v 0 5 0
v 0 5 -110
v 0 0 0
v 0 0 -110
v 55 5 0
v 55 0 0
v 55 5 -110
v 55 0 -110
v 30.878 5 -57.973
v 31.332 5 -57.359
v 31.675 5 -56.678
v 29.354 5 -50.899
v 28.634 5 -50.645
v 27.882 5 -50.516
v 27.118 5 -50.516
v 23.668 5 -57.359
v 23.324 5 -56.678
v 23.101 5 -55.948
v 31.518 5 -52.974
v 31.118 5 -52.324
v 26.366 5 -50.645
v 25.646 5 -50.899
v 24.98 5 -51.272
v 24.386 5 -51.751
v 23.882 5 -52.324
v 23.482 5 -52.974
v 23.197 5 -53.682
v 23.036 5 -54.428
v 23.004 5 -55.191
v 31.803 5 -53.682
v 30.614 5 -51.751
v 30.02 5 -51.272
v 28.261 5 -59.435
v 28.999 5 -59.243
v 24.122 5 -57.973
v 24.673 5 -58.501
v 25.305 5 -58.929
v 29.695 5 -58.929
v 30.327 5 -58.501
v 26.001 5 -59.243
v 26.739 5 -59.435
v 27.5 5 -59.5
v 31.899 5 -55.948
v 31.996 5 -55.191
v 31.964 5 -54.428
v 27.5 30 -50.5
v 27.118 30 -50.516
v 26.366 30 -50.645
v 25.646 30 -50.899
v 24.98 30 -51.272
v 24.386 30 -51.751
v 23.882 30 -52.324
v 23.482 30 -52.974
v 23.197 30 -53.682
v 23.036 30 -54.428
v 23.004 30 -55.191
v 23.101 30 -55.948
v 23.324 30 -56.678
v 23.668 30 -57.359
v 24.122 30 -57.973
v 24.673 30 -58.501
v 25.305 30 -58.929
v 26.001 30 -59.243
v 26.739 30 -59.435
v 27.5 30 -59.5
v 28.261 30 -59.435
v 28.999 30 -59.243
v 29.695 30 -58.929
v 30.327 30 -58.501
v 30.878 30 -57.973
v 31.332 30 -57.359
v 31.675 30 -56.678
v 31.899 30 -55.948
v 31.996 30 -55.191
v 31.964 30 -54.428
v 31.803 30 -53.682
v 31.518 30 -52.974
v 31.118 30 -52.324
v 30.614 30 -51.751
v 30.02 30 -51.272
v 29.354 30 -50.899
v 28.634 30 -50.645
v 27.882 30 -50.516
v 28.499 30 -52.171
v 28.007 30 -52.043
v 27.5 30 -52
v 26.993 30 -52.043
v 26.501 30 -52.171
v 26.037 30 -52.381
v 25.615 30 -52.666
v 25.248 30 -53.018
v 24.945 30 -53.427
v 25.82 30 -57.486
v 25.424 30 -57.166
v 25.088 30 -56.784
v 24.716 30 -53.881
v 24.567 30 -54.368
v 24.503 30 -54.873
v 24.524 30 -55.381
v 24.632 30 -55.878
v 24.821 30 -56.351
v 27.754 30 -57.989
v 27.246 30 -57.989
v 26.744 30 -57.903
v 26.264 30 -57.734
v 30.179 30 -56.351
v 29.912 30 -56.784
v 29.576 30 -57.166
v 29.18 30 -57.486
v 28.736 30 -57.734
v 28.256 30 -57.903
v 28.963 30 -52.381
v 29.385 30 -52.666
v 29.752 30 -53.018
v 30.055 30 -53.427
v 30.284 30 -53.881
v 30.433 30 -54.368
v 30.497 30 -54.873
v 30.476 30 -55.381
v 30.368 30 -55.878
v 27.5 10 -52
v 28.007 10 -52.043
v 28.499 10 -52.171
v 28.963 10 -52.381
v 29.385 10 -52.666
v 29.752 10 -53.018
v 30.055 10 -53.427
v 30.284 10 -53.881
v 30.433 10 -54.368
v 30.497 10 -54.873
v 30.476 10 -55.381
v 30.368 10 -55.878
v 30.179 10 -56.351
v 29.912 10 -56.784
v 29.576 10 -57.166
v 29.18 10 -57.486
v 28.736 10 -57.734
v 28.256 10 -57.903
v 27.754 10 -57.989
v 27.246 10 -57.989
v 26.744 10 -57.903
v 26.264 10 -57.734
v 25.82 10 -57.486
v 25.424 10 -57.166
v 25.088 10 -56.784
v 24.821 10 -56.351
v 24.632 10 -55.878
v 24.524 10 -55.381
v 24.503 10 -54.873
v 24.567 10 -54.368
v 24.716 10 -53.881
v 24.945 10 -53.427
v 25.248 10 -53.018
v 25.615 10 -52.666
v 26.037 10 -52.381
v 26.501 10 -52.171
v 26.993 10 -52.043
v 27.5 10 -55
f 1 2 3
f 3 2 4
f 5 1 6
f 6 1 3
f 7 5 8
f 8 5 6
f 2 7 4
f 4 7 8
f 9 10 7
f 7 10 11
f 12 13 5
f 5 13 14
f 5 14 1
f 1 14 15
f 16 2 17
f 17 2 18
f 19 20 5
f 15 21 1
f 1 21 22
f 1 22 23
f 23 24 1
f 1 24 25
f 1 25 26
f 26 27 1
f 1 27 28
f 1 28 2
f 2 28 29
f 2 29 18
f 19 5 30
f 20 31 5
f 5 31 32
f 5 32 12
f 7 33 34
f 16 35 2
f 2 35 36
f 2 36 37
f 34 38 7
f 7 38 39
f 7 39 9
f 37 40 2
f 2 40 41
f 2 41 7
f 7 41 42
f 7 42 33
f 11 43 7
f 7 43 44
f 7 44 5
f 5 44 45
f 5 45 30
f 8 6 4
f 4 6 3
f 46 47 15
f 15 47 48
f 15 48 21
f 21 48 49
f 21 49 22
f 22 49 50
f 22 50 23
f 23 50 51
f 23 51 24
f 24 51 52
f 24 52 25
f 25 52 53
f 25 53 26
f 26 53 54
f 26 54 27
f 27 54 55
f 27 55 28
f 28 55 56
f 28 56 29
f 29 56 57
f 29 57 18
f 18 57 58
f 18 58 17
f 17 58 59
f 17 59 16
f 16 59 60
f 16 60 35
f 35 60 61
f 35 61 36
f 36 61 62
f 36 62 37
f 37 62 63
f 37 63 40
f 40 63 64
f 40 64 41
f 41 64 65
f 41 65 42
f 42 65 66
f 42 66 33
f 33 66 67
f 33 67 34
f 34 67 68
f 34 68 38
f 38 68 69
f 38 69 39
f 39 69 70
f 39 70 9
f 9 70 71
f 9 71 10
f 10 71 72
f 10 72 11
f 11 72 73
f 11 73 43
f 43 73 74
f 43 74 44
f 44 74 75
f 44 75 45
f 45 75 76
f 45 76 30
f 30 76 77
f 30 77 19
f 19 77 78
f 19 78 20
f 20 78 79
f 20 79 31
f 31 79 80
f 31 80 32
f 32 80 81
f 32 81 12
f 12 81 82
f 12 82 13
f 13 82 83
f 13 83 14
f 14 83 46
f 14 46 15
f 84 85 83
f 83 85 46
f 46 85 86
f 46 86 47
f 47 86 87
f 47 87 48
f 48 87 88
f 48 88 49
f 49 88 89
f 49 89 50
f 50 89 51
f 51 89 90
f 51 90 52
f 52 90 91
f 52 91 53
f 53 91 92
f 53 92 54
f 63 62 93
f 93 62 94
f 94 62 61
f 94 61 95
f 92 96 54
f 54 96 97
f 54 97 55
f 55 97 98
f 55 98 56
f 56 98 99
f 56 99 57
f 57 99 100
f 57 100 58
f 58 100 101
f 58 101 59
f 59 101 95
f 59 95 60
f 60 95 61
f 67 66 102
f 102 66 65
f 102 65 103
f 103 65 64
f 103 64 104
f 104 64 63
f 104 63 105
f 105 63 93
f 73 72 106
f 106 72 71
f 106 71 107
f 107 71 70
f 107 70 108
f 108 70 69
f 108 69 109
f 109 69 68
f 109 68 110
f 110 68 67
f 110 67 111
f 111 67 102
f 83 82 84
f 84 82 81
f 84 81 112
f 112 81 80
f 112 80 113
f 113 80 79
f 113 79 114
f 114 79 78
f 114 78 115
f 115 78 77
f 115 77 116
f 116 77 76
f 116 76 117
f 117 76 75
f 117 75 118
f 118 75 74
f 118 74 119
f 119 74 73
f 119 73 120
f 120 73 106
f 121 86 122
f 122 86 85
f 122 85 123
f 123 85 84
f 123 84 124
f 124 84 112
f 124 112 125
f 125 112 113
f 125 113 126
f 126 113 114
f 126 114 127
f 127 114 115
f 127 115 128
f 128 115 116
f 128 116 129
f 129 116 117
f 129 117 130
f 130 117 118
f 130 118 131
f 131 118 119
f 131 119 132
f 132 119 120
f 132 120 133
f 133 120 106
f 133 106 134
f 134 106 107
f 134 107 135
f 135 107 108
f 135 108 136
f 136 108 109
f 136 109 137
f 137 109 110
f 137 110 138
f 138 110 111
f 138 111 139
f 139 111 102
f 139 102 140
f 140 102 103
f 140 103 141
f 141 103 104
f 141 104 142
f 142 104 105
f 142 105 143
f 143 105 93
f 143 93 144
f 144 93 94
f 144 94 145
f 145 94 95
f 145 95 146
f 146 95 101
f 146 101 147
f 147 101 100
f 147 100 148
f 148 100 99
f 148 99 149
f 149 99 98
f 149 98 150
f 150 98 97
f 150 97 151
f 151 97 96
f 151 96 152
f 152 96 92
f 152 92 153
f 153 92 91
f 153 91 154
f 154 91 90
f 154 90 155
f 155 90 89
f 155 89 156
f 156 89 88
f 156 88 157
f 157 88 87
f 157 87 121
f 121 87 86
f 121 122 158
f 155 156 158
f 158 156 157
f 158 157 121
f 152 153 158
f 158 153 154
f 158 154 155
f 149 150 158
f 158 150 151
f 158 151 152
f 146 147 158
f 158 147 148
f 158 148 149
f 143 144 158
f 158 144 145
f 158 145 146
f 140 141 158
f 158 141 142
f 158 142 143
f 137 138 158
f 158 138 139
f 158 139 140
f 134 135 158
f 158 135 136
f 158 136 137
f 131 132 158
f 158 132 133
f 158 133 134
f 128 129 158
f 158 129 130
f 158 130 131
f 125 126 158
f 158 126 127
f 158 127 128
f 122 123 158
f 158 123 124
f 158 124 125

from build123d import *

# Parameters (mm, degrees)
SKETCH1_W           = 55
SKETCH1_H           = 110
BOSS_EXTRUDE3_DEPTH = 5
SKETCH3_R           = 4.5
BOSS_EXTRUDE4_DEPTH = 25
SKETCH4_R           = 3
CUT_EXTRUDE1_DEPTH  = 20


with BuildPart() as part:
    # Sketch1 → Boss-Extrude3 (new body)
    with BuildSketch(Plane(origin=(0, 0, 0), x_dir=(1, 0, 0), z_dir=(0, 1, 0))):
        with Locations((27.5, 55)):
            Rectangle(SKETCH1_W, SKETCH1_H)
    extrude(amount=BOSS_EXTRUDE3_DEPTH)

    # Sketch3 → Boss-Extrude4 (add)
    with BuildSketch(Plane(origin=(0, 5, 0), x_dir=(1, 0, 0), z_dir=(0, 1, 0))):
        with Locations((27.5, 55)):
            Circle(SKETCH3_R)
    extrude(amount=BOSS_EXTRUDE4_DEPTH)

    # Sketch4 → Cut-Extrude1 (cut)
    with BuildSketch(Plane(origin=(0, 30, 0), x_dir=(1, 0, 0), z_dir=(0, 1, 0))):
        with Locations((27.5, 55)):
            Circle(SKETCH4_R)
    extrude(amount=-CUT_EXTRUDE1_DEPTH, mode=Mode.SUBTRACT)


solid = part.part
